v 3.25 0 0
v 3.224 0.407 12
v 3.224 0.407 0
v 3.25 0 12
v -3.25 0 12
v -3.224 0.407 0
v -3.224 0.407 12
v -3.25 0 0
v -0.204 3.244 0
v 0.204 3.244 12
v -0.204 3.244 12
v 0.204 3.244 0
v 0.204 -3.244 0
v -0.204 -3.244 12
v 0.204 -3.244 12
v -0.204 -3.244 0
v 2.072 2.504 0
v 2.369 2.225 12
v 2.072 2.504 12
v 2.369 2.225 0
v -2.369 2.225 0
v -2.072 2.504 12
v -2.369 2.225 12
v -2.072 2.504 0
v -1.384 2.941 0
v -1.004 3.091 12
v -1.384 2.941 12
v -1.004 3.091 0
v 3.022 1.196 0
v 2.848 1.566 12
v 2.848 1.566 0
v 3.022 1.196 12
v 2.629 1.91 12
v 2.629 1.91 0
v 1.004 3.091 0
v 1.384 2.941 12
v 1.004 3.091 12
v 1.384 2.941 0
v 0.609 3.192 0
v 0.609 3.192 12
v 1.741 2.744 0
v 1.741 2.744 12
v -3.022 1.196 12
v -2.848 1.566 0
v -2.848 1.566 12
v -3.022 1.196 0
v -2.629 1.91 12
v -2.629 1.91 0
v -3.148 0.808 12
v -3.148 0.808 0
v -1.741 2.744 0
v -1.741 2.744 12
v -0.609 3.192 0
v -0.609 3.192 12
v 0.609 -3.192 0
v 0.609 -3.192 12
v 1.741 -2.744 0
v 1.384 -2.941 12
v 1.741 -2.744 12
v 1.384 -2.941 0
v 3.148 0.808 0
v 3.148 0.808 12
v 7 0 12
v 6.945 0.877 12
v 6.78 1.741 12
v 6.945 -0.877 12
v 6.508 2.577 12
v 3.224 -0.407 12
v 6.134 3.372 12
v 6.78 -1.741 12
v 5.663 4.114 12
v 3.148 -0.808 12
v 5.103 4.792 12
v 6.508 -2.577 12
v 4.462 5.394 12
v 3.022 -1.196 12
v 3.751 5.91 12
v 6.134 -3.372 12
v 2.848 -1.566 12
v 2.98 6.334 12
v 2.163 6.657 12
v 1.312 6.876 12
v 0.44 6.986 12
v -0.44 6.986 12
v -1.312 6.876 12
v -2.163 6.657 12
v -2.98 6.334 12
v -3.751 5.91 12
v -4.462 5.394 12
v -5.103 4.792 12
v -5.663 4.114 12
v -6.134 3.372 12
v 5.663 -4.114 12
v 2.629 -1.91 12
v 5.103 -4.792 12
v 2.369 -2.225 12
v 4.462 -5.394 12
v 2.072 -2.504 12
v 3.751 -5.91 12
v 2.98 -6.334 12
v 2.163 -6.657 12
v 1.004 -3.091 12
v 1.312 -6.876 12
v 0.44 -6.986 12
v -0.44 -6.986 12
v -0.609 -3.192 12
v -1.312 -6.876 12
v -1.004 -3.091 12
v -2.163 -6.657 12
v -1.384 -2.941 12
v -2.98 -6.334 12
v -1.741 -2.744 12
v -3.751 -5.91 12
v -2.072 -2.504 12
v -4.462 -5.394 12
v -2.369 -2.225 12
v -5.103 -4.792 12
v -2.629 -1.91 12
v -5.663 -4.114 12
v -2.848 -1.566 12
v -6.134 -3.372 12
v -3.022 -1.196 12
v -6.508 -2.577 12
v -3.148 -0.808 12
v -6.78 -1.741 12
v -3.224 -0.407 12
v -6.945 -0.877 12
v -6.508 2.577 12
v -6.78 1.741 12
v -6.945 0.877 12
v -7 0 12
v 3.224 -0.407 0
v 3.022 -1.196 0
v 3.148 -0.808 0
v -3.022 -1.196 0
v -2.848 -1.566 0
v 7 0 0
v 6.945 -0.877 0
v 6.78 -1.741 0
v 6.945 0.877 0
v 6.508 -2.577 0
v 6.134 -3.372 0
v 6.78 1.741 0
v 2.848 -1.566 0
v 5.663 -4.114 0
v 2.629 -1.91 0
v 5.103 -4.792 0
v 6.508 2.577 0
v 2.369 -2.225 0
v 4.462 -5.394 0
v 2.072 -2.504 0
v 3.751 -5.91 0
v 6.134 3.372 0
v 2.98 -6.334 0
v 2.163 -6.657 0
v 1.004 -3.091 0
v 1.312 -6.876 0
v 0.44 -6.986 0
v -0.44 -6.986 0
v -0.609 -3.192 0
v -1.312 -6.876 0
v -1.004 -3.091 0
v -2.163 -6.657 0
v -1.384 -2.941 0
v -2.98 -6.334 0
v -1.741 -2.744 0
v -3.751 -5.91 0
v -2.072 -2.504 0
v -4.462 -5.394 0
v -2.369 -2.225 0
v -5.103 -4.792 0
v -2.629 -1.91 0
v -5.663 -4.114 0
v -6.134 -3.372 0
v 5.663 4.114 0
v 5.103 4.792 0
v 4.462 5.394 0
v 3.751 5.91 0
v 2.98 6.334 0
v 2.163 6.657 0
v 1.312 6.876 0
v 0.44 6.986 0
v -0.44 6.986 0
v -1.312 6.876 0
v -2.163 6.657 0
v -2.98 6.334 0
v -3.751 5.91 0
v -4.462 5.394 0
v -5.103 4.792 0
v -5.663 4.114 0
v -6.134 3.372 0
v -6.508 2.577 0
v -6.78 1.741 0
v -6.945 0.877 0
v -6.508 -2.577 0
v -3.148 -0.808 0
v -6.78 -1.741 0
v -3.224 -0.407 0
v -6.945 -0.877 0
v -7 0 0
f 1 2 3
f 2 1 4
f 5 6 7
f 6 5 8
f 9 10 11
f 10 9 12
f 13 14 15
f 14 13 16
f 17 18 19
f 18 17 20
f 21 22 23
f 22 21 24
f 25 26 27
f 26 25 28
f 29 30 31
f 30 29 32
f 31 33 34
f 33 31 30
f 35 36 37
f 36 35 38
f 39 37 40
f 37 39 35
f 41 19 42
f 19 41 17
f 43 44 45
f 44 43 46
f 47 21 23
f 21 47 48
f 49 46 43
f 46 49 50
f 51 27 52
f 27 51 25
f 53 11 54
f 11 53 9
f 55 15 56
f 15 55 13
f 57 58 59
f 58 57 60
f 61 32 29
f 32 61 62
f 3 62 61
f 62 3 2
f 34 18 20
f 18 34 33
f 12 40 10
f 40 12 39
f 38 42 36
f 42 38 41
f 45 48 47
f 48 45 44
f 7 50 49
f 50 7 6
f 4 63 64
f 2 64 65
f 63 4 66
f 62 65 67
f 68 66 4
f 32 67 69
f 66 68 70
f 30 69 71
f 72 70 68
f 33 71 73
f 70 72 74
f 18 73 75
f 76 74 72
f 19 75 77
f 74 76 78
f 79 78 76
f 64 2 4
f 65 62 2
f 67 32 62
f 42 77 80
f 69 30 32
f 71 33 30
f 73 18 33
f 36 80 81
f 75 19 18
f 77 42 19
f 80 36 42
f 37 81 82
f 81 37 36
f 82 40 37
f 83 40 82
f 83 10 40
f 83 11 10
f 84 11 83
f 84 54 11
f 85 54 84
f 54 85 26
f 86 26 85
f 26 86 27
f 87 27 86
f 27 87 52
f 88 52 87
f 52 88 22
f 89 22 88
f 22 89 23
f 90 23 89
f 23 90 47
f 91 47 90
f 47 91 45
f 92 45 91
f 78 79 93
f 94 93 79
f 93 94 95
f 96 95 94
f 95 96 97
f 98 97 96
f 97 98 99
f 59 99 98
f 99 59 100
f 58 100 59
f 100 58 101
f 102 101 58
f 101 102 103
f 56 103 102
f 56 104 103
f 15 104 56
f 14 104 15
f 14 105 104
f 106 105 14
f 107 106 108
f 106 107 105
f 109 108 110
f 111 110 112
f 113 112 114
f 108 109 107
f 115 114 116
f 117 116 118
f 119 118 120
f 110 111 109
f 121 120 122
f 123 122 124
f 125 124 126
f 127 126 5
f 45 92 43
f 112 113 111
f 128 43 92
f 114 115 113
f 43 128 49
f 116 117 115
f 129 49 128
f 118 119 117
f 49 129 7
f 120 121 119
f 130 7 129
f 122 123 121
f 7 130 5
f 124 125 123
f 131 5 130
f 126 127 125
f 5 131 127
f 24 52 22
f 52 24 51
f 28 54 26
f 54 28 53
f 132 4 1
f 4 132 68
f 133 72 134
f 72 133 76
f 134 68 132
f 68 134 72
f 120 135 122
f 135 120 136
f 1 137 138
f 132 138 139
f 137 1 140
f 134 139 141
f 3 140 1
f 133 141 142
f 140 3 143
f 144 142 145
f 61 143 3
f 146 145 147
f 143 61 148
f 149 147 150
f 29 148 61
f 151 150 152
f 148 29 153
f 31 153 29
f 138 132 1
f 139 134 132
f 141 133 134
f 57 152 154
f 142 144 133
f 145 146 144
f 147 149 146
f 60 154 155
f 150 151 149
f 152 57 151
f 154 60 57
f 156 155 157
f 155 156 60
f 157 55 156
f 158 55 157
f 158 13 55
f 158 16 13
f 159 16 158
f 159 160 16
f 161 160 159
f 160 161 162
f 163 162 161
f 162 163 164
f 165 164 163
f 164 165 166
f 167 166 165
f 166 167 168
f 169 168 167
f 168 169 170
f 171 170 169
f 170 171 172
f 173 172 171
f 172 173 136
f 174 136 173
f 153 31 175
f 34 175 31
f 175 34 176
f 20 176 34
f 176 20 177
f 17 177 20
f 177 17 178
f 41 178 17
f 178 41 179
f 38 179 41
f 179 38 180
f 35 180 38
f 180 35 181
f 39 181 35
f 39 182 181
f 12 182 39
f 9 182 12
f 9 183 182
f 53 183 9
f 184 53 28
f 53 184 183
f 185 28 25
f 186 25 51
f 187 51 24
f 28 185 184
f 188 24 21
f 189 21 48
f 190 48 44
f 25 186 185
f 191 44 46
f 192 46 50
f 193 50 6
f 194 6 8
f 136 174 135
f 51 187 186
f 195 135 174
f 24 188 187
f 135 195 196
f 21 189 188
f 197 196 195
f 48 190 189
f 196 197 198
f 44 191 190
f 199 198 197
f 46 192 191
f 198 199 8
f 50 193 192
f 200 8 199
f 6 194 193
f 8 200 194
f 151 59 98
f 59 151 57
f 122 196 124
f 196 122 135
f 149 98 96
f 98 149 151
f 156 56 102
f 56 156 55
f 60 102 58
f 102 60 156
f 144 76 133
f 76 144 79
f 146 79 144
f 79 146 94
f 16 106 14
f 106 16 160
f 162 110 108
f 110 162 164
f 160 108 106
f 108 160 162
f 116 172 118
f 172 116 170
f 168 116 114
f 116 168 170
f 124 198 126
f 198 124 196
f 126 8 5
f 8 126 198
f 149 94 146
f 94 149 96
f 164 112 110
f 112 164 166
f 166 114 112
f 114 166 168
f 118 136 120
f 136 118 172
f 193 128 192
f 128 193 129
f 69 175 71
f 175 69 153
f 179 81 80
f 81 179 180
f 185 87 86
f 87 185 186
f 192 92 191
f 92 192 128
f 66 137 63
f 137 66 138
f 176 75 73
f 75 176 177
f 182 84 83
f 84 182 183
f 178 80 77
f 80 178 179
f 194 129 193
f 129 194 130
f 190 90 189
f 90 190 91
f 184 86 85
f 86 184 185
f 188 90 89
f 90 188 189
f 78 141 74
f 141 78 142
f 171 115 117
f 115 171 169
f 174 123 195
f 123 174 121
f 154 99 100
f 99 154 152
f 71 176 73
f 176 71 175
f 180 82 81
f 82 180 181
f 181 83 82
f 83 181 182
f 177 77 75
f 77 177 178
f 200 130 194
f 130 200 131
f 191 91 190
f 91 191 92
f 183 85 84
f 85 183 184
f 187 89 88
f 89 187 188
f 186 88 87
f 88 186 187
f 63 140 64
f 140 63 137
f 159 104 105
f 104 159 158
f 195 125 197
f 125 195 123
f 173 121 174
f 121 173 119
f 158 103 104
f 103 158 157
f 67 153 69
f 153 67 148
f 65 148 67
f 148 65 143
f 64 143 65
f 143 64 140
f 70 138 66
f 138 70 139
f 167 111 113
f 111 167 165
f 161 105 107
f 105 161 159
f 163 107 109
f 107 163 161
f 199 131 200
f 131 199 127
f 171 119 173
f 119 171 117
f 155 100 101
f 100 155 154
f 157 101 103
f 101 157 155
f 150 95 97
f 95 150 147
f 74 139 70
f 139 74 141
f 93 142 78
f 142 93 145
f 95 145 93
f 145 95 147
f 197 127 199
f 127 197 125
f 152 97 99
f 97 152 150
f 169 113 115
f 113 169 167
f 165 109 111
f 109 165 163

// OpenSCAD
$fn = 50;


difference() {
	union() {
		cylinder(h = 12, r = 7.0000000000);
	}
	union() {
		translate(v = [0, 0, -100]) {
			cylinder(h = 200, r = 3.2500000000);
		}
		translate(v = [0, 0, -100]) {
			cylinder(h = 200, r = 1.8000000000);
		}
	}
}
